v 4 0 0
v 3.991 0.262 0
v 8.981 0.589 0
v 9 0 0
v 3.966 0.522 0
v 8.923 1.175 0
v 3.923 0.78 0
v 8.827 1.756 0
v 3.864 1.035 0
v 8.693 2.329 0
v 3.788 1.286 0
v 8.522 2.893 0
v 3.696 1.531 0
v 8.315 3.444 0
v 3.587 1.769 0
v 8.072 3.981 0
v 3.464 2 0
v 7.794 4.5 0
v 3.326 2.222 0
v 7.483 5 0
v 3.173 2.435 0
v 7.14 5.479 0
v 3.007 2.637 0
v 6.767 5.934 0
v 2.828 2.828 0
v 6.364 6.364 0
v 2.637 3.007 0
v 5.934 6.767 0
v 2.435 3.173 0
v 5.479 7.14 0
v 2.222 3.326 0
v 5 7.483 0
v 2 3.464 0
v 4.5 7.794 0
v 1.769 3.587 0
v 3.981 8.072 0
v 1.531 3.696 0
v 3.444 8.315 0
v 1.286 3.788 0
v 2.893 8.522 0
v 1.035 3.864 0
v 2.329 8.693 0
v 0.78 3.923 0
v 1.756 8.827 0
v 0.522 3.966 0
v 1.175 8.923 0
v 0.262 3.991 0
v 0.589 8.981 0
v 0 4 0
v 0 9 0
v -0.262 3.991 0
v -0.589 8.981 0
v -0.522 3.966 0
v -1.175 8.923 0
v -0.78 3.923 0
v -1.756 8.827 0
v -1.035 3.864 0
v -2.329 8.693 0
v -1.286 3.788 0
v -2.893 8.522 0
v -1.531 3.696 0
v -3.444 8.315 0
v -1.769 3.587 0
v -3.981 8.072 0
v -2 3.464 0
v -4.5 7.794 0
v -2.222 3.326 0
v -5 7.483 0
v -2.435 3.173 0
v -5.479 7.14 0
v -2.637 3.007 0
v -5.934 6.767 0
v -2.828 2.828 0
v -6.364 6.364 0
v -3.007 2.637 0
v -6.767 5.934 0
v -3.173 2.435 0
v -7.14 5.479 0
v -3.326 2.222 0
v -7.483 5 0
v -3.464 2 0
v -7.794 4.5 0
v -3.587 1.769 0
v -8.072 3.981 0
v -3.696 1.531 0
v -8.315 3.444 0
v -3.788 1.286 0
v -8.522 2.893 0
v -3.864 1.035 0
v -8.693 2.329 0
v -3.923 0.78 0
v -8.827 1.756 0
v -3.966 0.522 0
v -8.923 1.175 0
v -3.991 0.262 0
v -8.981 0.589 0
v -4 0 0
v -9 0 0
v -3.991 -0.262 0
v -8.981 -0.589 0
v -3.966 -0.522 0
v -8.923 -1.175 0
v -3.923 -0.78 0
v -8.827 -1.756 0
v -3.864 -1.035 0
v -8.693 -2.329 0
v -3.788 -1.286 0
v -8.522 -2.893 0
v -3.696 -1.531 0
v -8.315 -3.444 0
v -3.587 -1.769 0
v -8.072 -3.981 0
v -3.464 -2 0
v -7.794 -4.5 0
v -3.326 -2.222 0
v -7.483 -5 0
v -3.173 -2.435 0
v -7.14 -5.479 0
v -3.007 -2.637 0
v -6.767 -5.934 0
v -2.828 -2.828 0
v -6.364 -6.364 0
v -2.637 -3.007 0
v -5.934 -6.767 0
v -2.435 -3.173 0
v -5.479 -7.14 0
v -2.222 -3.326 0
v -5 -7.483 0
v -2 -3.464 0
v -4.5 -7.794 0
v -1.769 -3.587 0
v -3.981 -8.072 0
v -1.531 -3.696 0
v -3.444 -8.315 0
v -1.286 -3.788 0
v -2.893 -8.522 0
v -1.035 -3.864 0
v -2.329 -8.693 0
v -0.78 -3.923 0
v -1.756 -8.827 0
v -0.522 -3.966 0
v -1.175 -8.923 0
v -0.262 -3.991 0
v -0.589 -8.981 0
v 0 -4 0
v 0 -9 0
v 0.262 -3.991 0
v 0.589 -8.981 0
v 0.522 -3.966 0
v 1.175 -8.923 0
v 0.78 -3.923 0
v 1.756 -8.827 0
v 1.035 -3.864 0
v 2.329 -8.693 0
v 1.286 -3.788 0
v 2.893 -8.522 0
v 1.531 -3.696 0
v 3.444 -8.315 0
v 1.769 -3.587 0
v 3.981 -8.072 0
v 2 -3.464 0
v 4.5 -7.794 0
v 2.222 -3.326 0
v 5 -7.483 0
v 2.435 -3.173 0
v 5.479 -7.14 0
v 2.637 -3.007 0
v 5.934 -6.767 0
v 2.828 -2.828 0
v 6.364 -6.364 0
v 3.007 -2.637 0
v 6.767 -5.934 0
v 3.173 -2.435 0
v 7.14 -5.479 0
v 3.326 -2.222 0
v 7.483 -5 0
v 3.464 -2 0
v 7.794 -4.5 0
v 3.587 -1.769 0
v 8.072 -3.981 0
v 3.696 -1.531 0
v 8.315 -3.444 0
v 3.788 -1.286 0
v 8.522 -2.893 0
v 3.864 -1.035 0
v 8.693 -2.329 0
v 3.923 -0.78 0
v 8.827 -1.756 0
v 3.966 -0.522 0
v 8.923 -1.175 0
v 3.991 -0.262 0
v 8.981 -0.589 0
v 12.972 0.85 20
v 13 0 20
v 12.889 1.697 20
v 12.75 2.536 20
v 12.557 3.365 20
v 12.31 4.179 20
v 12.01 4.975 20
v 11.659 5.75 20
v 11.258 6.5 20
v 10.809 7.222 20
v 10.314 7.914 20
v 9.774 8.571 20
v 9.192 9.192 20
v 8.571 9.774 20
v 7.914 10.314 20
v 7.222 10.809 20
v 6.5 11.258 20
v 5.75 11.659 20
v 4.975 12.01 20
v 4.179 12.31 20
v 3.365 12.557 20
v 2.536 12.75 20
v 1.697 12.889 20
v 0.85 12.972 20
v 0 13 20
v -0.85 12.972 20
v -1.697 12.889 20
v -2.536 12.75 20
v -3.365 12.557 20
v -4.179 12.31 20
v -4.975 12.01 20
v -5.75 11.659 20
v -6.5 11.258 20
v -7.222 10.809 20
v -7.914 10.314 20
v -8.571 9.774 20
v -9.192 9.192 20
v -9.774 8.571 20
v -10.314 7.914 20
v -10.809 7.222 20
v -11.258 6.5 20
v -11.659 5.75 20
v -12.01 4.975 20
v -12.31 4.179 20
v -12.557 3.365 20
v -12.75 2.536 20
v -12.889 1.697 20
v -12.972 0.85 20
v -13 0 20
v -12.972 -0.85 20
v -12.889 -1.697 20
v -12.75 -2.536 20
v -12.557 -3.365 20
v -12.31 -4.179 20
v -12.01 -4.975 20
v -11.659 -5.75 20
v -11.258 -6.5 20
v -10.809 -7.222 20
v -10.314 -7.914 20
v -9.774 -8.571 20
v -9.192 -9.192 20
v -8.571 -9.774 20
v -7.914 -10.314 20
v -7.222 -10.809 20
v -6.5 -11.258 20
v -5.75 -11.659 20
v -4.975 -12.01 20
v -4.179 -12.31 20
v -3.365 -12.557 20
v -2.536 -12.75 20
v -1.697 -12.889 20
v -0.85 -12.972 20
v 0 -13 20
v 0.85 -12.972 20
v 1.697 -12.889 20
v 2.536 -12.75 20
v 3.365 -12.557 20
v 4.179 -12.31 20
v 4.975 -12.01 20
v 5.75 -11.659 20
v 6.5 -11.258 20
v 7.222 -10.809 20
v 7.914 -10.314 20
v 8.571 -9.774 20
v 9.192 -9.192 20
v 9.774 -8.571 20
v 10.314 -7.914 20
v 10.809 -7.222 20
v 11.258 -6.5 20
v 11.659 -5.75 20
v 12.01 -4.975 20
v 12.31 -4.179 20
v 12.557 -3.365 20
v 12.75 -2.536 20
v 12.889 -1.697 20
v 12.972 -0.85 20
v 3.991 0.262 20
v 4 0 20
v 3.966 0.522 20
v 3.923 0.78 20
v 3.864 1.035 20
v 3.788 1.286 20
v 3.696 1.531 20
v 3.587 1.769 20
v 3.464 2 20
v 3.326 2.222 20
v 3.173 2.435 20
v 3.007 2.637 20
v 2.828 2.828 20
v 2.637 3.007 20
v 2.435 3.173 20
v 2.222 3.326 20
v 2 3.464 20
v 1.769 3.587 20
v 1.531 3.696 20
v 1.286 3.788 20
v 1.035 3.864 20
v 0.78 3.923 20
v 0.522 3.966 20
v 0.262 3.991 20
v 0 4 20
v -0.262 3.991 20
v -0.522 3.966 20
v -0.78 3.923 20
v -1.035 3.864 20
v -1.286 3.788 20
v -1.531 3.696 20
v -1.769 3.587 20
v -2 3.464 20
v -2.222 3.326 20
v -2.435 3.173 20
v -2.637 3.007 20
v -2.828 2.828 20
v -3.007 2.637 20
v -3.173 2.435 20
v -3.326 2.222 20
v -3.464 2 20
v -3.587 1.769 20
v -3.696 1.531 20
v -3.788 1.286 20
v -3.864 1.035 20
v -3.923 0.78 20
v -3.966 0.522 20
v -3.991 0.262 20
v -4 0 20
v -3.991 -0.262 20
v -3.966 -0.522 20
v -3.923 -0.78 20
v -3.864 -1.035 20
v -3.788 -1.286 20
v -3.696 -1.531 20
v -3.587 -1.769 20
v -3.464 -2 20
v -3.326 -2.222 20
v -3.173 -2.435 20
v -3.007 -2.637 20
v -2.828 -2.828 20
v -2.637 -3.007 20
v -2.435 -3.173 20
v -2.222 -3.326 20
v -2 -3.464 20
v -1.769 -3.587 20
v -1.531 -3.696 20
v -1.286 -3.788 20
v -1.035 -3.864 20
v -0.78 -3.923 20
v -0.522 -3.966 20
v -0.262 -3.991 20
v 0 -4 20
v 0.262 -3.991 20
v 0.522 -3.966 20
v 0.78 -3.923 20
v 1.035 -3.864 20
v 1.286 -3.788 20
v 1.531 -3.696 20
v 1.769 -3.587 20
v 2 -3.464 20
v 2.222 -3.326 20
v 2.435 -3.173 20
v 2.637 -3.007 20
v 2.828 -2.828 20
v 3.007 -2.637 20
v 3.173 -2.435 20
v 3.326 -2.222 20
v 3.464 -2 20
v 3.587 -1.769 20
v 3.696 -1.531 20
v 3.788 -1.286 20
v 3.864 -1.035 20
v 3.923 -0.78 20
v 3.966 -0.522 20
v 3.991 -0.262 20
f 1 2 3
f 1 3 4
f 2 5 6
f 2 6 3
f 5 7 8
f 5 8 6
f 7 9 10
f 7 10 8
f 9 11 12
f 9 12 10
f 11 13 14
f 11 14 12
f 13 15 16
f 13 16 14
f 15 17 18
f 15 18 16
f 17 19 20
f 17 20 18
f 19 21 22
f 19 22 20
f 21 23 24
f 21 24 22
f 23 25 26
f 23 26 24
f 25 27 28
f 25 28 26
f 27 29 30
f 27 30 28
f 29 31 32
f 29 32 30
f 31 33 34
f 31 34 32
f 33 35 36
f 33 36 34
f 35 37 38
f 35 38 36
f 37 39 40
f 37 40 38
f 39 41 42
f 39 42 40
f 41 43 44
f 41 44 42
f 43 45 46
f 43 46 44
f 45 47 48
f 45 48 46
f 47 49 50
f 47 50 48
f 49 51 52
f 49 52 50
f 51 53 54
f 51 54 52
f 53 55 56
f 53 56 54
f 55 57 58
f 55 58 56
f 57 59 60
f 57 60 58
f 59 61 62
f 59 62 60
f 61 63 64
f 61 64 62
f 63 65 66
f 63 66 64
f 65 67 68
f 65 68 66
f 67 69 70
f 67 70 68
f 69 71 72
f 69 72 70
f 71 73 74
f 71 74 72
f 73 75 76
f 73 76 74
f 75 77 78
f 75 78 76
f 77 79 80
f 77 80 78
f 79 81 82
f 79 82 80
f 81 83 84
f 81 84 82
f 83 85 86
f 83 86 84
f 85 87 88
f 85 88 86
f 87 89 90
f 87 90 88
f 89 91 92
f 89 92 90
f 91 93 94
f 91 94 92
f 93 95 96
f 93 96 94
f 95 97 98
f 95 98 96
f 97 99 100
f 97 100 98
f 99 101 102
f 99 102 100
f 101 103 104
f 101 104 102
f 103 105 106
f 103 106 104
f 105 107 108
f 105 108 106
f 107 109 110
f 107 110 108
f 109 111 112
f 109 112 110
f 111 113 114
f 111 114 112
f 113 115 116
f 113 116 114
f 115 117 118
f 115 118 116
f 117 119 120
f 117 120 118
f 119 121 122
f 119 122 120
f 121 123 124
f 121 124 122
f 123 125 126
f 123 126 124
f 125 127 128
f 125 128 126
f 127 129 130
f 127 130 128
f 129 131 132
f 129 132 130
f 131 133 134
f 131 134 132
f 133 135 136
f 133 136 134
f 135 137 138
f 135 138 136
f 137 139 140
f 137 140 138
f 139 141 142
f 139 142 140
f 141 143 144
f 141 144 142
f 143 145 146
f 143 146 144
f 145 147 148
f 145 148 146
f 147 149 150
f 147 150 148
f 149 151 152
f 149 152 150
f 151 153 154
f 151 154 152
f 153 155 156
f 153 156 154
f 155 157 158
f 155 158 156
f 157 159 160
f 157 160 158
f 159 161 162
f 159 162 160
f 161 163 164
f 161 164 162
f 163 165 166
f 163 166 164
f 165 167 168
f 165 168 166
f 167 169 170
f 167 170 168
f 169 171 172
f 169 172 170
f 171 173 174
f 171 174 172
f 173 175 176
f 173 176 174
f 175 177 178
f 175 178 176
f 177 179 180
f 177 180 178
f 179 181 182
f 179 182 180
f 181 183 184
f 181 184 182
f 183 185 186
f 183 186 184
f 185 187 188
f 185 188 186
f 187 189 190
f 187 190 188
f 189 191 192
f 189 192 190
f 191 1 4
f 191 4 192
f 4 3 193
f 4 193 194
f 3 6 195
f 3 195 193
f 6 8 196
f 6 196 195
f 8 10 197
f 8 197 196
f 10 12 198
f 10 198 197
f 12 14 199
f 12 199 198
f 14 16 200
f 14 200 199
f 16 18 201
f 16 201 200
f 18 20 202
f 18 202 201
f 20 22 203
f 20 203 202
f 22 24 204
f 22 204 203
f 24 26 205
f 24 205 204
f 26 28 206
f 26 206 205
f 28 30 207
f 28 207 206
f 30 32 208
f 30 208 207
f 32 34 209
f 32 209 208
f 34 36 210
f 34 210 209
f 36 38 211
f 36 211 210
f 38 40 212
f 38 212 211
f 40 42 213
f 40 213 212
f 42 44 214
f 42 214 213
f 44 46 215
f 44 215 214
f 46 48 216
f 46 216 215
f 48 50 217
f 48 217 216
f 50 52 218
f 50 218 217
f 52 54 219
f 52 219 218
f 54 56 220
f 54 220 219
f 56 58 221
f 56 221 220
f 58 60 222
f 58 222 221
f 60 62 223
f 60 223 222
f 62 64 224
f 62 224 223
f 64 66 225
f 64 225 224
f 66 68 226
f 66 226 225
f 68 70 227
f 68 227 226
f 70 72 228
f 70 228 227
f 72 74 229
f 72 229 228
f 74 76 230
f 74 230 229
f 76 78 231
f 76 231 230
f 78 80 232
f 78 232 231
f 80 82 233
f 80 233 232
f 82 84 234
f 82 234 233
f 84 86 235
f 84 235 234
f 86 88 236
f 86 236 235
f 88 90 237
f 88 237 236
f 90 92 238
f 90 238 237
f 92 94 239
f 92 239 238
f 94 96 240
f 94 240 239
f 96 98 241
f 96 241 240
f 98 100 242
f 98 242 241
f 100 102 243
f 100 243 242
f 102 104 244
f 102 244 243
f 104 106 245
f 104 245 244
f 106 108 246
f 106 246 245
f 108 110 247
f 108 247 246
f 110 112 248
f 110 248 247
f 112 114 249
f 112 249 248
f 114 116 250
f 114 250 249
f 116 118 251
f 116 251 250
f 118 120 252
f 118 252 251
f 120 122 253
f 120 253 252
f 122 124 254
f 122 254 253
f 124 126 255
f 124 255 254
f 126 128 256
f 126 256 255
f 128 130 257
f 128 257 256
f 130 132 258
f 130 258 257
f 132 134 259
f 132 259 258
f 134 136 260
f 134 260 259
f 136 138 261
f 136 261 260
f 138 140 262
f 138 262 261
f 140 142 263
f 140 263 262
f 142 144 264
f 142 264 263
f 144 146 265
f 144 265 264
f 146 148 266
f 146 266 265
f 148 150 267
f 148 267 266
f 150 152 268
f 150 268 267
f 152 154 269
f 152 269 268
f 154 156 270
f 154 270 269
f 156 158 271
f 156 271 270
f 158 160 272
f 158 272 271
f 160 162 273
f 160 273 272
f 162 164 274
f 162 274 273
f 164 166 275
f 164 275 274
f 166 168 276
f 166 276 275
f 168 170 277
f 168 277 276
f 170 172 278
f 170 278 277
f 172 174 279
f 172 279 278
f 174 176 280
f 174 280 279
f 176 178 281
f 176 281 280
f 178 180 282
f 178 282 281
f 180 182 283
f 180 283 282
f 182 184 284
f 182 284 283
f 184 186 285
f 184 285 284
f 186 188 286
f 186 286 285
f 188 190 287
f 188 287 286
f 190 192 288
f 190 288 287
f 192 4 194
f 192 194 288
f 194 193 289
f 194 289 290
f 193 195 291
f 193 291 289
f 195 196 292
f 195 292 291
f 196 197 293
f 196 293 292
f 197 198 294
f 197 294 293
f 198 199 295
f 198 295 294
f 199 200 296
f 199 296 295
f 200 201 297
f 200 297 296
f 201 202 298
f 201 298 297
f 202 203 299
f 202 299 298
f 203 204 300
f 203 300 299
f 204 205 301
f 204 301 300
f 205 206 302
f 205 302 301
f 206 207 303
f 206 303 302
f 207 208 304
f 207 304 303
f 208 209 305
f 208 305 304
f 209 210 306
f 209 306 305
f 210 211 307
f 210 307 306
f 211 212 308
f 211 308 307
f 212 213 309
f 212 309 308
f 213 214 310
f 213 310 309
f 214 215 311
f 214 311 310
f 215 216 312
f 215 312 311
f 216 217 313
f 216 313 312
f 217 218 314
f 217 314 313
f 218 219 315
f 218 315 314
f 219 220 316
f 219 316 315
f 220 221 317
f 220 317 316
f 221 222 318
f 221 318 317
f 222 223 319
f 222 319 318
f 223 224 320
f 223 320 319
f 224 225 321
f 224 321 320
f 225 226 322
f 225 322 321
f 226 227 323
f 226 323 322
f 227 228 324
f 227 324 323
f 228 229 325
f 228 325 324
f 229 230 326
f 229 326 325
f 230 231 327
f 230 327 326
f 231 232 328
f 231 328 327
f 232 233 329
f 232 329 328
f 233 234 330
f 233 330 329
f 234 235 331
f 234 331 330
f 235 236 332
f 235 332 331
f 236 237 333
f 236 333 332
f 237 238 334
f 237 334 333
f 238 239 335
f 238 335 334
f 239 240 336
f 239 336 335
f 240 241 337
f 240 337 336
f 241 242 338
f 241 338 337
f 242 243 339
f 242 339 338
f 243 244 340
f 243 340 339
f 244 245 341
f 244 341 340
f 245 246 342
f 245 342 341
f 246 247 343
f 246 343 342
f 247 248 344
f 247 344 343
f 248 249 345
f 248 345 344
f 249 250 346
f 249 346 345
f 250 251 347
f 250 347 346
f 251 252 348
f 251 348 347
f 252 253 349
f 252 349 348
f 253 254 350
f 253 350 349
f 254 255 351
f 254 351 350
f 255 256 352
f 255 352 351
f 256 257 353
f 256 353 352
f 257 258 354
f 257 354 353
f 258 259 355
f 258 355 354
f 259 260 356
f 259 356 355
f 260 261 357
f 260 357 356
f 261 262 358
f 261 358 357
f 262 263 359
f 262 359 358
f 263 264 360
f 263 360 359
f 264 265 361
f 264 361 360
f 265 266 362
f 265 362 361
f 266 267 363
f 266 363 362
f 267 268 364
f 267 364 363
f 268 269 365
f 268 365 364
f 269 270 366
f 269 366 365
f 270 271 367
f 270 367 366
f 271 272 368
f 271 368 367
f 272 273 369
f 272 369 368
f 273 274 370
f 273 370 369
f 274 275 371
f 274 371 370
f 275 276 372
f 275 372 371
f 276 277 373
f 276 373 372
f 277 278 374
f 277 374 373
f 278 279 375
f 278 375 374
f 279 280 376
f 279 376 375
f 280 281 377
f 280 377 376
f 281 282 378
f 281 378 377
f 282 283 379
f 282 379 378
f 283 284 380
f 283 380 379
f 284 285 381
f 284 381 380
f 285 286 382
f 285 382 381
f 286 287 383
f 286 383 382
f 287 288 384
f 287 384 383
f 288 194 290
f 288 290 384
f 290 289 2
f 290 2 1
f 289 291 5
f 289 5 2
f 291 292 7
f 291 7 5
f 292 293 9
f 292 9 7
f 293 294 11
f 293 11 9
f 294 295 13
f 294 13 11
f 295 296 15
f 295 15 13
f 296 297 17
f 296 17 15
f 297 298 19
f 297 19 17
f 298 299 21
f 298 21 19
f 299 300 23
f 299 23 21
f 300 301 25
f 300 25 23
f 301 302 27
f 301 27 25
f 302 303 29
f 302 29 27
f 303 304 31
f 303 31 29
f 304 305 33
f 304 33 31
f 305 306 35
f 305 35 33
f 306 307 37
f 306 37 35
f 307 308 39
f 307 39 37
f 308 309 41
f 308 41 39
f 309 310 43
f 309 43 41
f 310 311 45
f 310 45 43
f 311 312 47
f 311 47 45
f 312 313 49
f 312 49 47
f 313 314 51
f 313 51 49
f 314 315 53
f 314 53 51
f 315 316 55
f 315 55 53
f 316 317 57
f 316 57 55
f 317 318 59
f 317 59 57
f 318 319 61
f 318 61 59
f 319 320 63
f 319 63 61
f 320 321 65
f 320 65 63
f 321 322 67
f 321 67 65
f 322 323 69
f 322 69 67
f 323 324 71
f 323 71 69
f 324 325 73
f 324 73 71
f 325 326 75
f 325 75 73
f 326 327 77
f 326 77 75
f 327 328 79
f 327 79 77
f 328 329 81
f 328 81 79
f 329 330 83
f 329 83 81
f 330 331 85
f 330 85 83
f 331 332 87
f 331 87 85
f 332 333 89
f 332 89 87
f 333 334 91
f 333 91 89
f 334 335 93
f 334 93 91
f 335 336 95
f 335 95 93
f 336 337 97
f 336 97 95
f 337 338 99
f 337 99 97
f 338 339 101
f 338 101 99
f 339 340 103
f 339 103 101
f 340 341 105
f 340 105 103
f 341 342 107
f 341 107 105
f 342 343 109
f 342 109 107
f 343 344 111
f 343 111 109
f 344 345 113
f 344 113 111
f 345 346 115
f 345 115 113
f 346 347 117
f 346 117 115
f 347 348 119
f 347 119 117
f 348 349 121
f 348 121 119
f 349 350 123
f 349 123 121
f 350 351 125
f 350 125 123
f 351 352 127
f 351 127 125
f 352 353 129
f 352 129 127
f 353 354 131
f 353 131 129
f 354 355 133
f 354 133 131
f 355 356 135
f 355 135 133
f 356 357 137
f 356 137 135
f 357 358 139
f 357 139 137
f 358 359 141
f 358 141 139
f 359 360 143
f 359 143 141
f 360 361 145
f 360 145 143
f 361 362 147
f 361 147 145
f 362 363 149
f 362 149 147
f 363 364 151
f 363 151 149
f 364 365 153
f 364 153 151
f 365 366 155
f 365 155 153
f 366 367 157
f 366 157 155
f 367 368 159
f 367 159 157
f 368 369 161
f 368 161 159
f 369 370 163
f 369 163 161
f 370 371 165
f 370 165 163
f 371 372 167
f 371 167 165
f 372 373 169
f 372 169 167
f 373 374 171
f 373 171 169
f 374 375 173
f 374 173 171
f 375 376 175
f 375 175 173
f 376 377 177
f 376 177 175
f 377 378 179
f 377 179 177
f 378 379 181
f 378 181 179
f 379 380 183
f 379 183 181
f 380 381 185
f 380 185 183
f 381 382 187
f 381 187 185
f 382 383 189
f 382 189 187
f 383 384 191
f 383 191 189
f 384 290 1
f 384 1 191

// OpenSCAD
// Original MechIntel educational model. CC0-1.0. Units: mm.
// Not a standardized or load-rated component.
$fn=96;
// Section points: [radius, height], mm. Edit to change the profile.
section=[[4, 0], [9, 0], [13, 20], [4, 20]];
rotate_extrude($fn=96) polygon(points=section);
